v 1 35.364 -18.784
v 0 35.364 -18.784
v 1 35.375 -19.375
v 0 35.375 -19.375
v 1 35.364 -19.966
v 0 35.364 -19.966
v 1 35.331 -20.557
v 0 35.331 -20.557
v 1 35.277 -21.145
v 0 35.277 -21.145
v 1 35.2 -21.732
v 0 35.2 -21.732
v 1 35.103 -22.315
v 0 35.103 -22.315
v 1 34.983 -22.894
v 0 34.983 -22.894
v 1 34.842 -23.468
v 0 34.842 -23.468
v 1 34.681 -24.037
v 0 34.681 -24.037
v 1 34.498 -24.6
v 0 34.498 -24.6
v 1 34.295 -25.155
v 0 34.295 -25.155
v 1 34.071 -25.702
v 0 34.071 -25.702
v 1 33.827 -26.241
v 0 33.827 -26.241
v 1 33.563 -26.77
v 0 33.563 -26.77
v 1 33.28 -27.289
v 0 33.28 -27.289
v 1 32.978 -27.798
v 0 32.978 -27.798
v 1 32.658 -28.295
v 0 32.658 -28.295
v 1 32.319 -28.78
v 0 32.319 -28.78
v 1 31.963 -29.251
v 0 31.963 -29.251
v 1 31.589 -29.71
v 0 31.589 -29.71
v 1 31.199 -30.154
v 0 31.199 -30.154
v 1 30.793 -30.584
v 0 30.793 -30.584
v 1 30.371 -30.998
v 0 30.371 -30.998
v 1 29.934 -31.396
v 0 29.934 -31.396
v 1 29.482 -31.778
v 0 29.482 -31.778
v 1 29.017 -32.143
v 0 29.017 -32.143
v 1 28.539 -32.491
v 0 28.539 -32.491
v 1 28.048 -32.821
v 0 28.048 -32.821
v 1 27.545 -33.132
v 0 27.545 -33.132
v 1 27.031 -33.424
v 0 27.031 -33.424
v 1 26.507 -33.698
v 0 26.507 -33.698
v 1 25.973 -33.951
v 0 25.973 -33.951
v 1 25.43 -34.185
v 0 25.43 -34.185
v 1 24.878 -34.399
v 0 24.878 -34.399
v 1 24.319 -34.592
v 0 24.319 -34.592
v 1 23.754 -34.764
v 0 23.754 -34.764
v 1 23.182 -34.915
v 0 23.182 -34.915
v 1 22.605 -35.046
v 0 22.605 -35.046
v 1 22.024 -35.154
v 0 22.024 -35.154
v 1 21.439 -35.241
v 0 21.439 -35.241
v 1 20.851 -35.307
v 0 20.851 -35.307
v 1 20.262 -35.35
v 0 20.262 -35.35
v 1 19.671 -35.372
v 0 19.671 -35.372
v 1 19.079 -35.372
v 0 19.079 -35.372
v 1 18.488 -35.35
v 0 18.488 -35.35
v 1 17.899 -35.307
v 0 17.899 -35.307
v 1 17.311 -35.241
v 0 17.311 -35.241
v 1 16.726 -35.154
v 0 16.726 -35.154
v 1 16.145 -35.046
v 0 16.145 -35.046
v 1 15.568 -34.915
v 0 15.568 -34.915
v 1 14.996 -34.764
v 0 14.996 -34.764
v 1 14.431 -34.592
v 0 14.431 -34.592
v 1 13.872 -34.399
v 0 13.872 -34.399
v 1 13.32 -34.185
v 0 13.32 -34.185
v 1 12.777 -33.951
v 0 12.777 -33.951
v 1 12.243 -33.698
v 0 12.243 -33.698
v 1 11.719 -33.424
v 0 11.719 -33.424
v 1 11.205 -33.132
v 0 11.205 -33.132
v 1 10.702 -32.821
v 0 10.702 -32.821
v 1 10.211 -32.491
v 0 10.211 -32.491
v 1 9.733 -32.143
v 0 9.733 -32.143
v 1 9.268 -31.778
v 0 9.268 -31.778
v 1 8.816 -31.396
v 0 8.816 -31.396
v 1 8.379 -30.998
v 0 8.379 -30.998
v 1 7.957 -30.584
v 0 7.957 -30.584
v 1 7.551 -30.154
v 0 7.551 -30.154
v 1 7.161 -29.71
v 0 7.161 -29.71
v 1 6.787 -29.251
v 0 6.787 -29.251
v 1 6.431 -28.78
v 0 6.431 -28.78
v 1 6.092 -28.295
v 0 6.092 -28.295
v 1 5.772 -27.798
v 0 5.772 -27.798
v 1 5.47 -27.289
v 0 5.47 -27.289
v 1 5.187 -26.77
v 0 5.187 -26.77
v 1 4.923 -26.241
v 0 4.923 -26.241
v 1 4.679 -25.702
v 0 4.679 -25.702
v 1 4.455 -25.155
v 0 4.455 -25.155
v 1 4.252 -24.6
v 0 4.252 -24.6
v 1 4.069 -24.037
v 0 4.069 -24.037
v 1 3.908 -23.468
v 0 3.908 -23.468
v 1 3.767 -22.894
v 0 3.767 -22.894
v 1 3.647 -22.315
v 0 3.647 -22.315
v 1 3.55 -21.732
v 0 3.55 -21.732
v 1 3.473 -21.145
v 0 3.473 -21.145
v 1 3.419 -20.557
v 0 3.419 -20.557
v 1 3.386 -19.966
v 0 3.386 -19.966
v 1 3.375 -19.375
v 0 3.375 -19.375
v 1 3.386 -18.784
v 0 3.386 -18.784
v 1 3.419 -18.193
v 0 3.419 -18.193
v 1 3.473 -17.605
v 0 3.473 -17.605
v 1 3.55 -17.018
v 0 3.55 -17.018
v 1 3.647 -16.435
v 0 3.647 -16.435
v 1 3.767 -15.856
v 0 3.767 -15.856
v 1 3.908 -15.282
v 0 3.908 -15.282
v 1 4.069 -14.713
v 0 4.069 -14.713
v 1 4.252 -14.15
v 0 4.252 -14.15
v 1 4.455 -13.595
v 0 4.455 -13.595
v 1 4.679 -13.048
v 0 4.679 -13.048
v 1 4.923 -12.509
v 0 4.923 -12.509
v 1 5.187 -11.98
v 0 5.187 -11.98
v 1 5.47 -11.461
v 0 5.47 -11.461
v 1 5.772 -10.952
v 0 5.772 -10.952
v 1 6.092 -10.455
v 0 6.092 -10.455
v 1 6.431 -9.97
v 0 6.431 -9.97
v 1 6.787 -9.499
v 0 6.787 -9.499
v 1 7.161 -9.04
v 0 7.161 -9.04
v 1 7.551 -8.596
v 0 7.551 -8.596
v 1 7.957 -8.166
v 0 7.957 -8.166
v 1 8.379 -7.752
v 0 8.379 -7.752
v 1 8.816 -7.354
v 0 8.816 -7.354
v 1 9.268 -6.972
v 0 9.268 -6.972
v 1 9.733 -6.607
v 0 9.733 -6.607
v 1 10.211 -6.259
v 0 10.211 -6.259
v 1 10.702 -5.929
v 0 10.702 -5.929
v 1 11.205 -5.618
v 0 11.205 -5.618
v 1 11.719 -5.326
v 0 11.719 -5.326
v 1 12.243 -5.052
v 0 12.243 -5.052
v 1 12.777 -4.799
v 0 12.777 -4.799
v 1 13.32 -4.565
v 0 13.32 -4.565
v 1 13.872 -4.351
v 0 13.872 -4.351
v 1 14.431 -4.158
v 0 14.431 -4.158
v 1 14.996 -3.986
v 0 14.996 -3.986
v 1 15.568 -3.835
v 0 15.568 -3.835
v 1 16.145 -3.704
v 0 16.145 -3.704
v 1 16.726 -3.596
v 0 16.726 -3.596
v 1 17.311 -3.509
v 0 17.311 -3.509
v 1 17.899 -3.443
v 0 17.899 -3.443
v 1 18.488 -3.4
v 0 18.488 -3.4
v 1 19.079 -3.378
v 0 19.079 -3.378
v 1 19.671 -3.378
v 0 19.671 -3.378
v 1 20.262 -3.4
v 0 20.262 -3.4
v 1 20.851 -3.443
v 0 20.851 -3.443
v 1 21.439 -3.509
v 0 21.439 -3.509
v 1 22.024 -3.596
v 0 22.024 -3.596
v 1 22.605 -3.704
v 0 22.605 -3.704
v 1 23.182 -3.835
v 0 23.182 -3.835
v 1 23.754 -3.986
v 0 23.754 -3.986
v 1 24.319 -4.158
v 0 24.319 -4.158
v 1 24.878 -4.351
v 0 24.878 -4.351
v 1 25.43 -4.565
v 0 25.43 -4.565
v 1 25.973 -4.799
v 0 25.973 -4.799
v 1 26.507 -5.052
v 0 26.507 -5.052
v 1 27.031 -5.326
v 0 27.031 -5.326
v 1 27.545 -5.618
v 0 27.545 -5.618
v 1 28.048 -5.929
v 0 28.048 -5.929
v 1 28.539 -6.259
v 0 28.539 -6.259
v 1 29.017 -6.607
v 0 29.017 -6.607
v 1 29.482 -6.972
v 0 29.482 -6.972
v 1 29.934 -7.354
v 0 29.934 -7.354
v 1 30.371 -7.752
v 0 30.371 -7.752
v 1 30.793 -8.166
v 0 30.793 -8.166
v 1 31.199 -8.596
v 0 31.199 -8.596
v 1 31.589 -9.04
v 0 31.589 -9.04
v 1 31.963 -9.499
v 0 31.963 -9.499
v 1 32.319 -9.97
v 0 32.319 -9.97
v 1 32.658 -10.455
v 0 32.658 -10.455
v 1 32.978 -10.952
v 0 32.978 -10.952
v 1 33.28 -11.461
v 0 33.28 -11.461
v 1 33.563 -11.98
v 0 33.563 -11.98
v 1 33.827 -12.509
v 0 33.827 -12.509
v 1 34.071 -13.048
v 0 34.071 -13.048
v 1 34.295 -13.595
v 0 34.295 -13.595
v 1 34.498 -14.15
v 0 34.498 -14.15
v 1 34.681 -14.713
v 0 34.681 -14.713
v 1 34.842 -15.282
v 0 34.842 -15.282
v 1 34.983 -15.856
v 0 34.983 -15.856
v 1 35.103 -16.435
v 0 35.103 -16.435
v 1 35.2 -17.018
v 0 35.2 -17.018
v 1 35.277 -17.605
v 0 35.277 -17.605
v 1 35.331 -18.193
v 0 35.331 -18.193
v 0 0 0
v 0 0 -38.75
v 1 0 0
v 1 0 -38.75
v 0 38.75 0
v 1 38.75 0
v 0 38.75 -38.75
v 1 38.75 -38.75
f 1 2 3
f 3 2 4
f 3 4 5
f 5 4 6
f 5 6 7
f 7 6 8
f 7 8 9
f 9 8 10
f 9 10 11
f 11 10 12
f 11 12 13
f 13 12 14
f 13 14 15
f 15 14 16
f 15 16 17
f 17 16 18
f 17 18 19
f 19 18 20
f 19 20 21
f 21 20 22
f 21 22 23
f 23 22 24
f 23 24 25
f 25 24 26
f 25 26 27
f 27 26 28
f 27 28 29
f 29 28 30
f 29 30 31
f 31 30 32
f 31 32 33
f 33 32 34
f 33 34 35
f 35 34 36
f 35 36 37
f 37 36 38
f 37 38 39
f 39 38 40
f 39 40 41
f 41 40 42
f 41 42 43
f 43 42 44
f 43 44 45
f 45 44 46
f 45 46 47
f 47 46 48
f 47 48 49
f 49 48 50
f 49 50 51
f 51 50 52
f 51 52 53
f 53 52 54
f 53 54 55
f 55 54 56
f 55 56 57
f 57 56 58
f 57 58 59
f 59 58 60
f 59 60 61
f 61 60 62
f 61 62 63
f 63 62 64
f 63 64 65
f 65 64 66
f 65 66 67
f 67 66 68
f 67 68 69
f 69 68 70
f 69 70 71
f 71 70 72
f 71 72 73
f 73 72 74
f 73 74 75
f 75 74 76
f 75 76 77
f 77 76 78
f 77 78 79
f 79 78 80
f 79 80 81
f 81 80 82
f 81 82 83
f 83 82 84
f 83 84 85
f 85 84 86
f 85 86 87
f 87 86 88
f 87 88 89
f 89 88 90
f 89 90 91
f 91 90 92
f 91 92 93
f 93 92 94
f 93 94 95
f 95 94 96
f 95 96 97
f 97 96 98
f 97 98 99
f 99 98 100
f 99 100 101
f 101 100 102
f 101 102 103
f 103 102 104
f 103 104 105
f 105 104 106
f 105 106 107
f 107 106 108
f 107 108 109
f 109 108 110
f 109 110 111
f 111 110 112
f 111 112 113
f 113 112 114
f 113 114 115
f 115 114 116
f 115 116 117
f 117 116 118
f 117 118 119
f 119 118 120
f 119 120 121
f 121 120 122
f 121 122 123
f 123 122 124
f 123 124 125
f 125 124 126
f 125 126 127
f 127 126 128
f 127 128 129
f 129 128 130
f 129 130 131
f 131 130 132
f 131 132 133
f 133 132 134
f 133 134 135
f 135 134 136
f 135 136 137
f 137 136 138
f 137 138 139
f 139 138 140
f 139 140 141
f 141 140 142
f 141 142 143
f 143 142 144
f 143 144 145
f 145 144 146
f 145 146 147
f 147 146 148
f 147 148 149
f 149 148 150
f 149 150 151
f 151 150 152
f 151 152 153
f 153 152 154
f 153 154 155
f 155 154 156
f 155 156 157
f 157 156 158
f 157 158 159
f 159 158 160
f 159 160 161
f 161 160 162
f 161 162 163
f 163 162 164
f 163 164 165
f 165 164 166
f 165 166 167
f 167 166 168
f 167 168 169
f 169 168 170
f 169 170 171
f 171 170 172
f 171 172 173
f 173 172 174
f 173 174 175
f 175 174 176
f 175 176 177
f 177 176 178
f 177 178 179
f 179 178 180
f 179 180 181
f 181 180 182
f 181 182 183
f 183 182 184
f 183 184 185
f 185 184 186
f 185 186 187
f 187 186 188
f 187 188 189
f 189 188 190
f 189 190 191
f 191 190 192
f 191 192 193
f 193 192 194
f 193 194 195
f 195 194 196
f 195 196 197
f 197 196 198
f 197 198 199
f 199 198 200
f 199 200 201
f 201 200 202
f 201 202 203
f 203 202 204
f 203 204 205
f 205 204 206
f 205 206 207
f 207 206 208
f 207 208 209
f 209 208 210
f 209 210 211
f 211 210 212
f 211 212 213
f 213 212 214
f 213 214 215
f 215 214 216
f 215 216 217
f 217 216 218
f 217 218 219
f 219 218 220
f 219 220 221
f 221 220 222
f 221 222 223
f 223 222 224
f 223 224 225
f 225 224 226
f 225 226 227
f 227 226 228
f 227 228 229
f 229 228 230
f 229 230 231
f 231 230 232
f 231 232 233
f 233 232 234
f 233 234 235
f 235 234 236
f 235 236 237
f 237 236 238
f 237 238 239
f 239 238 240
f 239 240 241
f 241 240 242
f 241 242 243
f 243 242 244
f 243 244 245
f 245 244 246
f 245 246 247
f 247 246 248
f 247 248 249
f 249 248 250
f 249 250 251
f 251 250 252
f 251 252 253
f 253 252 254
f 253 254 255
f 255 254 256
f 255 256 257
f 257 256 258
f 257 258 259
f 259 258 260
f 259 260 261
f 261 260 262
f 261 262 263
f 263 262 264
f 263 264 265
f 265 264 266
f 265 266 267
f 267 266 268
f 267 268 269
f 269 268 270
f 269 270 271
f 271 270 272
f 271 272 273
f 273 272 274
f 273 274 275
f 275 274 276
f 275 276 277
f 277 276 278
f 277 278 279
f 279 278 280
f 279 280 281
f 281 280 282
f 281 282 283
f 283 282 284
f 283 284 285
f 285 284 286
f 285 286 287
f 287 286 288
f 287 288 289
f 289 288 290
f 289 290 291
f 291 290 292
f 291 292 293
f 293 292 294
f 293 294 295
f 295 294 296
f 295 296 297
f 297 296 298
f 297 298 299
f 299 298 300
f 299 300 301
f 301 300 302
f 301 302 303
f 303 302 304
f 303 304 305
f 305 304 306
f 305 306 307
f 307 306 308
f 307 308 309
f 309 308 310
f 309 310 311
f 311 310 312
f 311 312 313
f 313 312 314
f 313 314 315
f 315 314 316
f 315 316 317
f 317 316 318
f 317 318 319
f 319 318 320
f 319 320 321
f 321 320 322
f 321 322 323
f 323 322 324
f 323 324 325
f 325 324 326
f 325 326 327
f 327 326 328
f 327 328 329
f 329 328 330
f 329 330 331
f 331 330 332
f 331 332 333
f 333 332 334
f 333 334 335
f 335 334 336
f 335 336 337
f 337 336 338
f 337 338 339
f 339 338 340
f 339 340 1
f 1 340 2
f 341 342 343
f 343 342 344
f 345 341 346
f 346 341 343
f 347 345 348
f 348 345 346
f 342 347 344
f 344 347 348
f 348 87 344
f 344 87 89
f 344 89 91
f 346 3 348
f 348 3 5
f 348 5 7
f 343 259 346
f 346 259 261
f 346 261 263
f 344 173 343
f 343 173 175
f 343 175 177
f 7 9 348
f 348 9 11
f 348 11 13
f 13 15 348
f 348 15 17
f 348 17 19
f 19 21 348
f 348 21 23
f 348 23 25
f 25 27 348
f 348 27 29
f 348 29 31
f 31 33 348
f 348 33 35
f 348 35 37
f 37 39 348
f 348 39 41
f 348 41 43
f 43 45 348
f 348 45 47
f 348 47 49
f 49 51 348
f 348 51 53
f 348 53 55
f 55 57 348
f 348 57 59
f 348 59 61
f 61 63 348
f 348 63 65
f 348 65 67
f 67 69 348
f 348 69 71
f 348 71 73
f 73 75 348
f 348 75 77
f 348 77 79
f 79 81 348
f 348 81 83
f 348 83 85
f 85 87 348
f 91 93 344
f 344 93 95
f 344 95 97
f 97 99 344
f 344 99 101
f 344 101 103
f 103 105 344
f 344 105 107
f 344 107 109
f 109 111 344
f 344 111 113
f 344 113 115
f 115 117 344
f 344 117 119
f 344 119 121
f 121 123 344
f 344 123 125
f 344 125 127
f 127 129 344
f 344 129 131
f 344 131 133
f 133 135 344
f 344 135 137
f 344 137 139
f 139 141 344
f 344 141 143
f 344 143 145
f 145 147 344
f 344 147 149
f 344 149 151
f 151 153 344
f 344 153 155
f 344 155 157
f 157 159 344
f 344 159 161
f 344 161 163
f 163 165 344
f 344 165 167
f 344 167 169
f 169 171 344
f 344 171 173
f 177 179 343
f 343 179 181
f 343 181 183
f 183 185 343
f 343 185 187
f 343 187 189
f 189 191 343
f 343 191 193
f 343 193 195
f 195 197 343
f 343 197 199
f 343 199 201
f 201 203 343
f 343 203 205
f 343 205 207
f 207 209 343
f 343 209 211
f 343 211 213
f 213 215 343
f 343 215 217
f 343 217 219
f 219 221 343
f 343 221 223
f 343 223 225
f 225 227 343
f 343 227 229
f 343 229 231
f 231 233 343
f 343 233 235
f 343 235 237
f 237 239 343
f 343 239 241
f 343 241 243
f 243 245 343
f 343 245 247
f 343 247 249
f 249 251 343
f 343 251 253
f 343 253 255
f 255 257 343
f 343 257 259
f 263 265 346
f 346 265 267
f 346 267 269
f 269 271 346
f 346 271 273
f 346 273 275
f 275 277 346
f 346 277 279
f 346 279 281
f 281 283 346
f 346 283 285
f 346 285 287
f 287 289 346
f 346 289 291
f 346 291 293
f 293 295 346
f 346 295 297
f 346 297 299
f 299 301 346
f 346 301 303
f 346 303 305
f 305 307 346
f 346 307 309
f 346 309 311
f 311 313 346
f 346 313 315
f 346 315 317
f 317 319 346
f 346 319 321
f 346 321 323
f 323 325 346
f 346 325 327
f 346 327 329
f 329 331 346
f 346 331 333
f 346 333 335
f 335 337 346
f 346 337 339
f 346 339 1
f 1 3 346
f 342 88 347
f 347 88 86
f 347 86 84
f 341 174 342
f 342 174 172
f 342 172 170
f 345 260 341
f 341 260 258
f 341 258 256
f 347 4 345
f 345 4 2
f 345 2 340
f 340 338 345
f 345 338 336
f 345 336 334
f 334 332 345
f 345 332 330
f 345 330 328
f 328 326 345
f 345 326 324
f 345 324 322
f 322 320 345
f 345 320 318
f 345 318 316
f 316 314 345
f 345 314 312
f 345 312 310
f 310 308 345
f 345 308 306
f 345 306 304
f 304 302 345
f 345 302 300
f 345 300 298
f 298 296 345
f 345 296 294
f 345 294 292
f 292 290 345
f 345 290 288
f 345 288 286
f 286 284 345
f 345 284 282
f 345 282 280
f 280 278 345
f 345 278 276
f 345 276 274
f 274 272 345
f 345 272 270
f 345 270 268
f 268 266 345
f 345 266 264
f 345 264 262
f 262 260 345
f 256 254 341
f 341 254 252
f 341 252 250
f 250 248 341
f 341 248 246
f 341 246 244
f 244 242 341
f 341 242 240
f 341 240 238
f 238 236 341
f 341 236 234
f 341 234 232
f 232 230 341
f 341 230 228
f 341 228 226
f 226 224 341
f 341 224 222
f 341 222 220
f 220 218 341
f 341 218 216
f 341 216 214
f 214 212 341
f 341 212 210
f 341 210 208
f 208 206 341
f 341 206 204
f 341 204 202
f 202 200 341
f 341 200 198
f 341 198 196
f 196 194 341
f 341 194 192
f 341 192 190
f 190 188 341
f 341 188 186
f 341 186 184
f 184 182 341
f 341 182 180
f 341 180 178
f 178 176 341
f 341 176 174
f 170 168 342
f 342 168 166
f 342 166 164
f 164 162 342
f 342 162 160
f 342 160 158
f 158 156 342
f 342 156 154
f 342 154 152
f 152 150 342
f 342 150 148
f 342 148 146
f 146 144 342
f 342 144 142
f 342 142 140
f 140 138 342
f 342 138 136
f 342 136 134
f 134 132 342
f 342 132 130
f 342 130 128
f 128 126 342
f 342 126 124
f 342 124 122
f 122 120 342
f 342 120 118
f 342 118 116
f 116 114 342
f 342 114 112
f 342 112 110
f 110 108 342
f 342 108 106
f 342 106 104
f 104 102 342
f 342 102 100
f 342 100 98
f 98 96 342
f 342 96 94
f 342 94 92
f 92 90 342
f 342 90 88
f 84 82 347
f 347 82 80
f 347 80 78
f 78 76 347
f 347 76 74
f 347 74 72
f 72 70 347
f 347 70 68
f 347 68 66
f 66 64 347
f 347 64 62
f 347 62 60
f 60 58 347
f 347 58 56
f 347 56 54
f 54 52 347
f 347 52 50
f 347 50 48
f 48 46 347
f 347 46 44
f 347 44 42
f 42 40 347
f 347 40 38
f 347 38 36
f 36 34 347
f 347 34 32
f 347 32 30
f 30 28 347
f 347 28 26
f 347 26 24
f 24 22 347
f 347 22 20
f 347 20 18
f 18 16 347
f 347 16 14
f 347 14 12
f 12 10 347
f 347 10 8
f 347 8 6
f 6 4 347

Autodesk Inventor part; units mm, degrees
ref_plane "YZ Plane" through (0, 0, 0) normal (1, 0, 0) x (0, 1, 0)
ref_plane "XZ Plane" through (0, 0, 0) normal (0, 1, 0) x (-1, 0, 0)
ref_plane "XY Plane" through (0, 0, 0) normal (0, 0, 1) x (1, 0, 0)
sketch "Sketch1" plane through (0, 0, 0) normal (1, 0, 0) x (0, 1, 0)
  line L0 (0, 0) -> (38.75, 0)
  line L1 (38.75, 0) -> (38.75, -38.75)
  line L2 (38.75, -38.75) -> (0, -38.75)
  line L3 (0, -38.75) -> (0, 0)
  line L4 (0, -19.375) -> (19.375, -19.375)
  circle A0 centre (19.375, -19.375) radius 16
  dimension "d0" = 38.75
  dimension "d1" = 38.75
  dimension "d2" = 32
extrude "Extrusion1" add sketch "Sketch1" along normal blind 1
properties part number "Mag_Shield_front"
